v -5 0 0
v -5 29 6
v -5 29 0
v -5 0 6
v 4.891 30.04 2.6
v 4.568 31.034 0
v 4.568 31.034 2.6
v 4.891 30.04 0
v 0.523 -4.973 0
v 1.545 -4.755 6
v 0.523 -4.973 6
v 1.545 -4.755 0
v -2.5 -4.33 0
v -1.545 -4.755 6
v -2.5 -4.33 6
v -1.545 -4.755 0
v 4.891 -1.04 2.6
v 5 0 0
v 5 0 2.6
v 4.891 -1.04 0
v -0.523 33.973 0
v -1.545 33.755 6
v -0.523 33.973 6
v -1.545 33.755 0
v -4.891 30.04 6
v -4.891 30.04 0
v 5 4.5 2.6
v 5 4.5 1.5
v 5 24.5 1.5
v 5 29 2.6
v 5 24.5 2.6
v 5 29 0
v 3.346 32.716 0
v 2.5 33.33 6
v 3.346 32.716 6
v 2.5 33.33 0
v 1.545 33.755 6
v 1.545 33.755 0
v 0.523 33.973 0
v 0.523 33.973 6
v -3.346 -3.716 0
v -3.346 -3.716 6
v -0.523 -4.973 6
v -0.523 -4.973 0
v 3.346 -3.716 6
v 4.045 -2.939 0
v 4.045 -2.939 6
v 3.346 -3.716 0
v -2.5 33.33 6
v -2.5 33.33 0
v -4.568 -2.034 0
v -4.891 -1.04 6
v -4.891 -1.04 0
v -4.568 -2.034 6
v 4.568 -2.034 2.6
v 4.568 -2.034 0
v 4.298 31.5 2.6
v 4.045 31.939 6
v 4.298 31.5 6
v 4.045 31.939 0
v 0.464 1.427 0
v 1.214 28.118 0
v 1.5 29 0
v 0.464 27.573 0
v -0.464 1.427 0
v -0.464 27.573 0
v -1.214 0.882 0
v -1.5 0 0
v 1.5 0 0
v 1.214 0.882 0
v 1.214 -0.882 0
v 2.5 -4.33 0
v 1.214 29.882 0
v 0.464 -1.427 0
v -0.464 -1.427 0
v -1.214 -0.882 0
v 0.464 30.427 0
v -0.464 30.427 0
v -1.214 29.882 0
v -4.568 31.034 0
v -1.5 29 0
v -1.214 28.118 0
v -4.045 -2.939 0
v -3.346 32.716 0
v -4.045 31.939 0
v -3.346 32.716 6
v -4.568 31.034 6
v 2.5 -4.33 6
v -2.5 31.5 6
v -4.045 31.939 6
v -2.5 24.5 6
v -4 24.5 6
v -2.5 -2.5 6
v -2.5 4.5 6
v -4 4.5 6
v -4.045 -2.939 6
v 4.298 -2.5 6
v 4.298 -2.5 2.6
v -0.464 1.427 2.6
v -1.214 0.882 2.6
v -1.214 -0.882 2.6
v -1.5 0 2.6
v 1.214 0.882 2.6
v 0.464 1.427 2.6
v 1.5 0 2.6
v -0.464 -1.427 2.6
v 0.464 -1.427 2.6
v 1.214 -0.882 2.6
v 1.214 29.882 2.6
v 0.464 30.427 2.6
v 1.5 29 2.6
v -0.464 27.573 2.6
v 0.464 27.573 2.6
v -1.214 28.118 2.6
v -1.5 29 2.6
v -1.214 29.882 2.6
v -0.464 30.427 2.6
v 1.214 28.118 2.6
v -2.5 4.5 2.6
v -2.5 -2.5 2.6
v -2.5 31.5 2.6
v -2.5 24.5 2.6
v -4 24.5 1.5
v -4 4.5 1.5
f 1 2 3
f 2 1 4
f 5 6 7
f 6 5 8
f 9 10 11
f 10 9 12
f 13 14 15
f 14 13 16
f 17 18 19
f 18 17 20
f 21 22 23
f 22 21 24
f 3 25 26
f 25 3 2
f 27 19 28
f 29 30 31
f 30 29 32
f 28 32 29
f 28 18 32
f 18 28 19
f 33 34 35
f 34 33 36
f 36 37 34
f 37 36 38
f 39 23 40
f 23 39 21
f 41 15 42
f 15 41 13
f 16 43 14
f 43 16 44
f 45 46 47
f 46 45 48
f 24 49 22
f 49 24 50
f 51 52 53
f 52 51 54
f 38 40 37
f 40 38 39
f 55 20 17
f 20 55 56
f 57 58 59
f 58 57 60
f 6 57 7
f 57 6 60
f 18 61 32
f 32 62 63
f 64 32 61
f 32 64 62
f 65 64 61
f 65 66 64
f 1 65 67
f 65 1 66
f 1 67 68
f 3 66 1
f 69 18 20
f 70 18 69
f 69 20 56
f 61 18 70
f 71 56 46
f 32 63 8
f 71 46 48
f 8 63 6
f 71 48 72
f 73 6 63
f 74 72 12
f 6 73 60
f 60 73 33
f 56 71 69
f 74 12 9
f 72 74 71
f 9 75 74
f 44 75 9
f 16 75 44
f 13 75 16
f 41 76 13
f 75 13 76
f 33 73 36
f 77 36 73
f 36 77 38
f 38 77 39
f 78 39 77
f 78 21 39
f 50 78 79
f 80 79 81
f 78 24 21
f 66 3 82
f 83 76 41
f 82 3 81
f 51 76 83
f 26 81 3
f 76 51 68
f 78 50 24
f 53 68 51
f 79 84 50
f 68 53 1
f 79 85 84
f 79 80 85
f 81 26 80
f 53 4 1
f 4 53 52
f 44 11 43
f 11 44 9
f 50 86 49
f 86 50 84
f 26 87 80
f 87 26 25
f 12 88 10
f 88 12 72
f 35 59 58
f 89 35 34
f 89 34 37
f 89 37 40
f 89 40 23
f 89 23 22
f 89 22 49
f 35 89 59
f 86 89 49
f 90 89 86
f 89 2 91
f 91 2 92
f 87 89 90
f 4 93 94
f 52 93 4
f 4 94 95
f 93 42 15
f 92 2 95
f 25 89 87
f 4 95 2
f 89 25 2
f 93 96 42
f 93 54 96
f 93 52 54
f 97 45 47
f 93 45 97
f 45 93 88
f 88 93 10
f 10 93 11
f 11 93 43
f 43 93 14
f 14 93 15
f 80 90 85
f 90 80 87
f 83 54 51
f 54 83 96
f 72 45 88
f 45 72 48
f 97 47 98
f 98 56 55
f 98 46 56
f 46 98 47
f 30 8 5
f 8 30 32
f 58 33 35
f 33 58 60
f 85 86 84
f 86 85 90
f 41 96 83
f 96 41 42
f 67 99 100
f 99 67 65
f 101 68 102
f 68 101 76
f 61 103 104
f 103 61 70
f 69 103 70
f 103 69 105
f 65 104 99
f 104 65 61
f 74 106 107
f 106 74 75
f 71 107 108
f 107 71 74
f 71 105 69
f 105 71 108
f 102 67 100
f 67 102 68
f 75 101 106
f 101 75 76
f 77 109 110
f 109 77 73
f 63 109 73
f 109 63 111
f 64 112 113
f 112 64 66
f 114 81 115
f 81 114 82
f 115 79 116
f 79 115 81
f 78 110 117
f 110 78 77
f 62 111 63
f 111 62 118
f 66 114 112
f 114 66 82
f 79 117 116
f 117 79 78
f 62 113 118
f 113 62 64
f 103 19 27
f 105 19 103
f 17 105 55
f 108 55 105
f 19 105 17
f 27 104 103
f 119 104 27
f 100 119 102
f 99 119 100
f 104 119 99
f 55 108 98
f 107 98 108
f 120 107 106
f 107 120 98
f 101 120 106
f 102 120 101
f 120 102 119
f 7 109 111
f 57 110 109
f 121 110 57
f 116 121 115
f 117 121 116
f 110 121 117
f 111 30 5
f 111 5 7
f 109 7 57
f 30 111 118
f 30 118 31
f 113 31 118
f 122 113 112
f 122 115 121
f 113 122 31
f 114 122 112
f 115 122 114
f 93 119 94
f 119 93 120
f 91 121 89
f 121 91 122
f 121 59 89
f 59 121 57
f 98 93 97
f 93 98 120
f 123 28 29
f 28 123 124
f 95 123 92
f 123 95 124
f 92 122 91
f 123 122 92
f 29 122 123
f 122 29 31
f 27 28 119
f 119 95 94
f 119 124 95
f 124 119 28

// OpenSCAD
oled_back();

module oled_back() {
    led_t=3;
    spt_t=6;
    hole_r=3;
    difference() {
        hull() {
            cylinder(spt_t,10/2,10/2,$fn=30);
            translate([0,29,0]) cylinder(spt_t,10/2,10/2,$fn=30);
        }
        translate([0,0,-0.5])cylinder(spt_t+1,hole_r/2,hole_r/2,$fn=10);
        translate([0,29,-0.5]) cylinder(spt_t+1,hole_r/2,hole_r/2,$fn=10);
        
        translate([-2.5,-2.5,spt_t-led_t-0.4]) cube(34);
        #translate([-2.5-3.5+2,-2.5+7,spt_t-led_t-1.5]) cube(20);
    }
}


module oled_front() {
    hw=33.8-3;
    hh=32-3;
    
    translate([-hw/2,0,0]) union() {
        cylinder(h=20, r=3.2/2, center=true, $fn=20);
        translate([hw, hh, 0]) cylinder(h=20, r=3.2/2, center=true, $fn=20);
        translate([hw, 0, 0]) cylinder(h=20, r=3.2/2, center=true, $fn=20);
        translate([0, hh, 0]) cylinder(h=20, r=3.2/2, center=true, $fn=20);
    }
    translate([-32/2,4,-10]) cube([32,17,20]);
}

module usb_c(){
    rotate([0,90,0]) union() {
        cube([13.5,5.5,20], center=true);
        cube([14,3.5,20], center=true);        
    }
}

module rotary_encoder() {
    rotate([0,90,0]) cylinder(h=20, r=7/2, center=true, $fn=20);
}

module shutter_jack() {
    rotate([0,90,0]) cylinder(h=20, r=7.2/2, center=true, $fn=20);
}

module switch() {
    rotate([0,90,0]) cylinder(h=20, r=6/2, center=true, $fn=20);
}

module pcb() {
    w=45;
    h=35;
    
    support(3,8);
    translate([w,h,0]) support(3,8);
    translate([0,h,0])support(3,8);
    translate([w,0,0])support(3,8);
}

module support(p,h) {
    difference() {
        cylinder(h=h, r=(p+3)/2);
        translate([0,0,-1]) cylinder(h=h+2, r=p/2);
    }
}
